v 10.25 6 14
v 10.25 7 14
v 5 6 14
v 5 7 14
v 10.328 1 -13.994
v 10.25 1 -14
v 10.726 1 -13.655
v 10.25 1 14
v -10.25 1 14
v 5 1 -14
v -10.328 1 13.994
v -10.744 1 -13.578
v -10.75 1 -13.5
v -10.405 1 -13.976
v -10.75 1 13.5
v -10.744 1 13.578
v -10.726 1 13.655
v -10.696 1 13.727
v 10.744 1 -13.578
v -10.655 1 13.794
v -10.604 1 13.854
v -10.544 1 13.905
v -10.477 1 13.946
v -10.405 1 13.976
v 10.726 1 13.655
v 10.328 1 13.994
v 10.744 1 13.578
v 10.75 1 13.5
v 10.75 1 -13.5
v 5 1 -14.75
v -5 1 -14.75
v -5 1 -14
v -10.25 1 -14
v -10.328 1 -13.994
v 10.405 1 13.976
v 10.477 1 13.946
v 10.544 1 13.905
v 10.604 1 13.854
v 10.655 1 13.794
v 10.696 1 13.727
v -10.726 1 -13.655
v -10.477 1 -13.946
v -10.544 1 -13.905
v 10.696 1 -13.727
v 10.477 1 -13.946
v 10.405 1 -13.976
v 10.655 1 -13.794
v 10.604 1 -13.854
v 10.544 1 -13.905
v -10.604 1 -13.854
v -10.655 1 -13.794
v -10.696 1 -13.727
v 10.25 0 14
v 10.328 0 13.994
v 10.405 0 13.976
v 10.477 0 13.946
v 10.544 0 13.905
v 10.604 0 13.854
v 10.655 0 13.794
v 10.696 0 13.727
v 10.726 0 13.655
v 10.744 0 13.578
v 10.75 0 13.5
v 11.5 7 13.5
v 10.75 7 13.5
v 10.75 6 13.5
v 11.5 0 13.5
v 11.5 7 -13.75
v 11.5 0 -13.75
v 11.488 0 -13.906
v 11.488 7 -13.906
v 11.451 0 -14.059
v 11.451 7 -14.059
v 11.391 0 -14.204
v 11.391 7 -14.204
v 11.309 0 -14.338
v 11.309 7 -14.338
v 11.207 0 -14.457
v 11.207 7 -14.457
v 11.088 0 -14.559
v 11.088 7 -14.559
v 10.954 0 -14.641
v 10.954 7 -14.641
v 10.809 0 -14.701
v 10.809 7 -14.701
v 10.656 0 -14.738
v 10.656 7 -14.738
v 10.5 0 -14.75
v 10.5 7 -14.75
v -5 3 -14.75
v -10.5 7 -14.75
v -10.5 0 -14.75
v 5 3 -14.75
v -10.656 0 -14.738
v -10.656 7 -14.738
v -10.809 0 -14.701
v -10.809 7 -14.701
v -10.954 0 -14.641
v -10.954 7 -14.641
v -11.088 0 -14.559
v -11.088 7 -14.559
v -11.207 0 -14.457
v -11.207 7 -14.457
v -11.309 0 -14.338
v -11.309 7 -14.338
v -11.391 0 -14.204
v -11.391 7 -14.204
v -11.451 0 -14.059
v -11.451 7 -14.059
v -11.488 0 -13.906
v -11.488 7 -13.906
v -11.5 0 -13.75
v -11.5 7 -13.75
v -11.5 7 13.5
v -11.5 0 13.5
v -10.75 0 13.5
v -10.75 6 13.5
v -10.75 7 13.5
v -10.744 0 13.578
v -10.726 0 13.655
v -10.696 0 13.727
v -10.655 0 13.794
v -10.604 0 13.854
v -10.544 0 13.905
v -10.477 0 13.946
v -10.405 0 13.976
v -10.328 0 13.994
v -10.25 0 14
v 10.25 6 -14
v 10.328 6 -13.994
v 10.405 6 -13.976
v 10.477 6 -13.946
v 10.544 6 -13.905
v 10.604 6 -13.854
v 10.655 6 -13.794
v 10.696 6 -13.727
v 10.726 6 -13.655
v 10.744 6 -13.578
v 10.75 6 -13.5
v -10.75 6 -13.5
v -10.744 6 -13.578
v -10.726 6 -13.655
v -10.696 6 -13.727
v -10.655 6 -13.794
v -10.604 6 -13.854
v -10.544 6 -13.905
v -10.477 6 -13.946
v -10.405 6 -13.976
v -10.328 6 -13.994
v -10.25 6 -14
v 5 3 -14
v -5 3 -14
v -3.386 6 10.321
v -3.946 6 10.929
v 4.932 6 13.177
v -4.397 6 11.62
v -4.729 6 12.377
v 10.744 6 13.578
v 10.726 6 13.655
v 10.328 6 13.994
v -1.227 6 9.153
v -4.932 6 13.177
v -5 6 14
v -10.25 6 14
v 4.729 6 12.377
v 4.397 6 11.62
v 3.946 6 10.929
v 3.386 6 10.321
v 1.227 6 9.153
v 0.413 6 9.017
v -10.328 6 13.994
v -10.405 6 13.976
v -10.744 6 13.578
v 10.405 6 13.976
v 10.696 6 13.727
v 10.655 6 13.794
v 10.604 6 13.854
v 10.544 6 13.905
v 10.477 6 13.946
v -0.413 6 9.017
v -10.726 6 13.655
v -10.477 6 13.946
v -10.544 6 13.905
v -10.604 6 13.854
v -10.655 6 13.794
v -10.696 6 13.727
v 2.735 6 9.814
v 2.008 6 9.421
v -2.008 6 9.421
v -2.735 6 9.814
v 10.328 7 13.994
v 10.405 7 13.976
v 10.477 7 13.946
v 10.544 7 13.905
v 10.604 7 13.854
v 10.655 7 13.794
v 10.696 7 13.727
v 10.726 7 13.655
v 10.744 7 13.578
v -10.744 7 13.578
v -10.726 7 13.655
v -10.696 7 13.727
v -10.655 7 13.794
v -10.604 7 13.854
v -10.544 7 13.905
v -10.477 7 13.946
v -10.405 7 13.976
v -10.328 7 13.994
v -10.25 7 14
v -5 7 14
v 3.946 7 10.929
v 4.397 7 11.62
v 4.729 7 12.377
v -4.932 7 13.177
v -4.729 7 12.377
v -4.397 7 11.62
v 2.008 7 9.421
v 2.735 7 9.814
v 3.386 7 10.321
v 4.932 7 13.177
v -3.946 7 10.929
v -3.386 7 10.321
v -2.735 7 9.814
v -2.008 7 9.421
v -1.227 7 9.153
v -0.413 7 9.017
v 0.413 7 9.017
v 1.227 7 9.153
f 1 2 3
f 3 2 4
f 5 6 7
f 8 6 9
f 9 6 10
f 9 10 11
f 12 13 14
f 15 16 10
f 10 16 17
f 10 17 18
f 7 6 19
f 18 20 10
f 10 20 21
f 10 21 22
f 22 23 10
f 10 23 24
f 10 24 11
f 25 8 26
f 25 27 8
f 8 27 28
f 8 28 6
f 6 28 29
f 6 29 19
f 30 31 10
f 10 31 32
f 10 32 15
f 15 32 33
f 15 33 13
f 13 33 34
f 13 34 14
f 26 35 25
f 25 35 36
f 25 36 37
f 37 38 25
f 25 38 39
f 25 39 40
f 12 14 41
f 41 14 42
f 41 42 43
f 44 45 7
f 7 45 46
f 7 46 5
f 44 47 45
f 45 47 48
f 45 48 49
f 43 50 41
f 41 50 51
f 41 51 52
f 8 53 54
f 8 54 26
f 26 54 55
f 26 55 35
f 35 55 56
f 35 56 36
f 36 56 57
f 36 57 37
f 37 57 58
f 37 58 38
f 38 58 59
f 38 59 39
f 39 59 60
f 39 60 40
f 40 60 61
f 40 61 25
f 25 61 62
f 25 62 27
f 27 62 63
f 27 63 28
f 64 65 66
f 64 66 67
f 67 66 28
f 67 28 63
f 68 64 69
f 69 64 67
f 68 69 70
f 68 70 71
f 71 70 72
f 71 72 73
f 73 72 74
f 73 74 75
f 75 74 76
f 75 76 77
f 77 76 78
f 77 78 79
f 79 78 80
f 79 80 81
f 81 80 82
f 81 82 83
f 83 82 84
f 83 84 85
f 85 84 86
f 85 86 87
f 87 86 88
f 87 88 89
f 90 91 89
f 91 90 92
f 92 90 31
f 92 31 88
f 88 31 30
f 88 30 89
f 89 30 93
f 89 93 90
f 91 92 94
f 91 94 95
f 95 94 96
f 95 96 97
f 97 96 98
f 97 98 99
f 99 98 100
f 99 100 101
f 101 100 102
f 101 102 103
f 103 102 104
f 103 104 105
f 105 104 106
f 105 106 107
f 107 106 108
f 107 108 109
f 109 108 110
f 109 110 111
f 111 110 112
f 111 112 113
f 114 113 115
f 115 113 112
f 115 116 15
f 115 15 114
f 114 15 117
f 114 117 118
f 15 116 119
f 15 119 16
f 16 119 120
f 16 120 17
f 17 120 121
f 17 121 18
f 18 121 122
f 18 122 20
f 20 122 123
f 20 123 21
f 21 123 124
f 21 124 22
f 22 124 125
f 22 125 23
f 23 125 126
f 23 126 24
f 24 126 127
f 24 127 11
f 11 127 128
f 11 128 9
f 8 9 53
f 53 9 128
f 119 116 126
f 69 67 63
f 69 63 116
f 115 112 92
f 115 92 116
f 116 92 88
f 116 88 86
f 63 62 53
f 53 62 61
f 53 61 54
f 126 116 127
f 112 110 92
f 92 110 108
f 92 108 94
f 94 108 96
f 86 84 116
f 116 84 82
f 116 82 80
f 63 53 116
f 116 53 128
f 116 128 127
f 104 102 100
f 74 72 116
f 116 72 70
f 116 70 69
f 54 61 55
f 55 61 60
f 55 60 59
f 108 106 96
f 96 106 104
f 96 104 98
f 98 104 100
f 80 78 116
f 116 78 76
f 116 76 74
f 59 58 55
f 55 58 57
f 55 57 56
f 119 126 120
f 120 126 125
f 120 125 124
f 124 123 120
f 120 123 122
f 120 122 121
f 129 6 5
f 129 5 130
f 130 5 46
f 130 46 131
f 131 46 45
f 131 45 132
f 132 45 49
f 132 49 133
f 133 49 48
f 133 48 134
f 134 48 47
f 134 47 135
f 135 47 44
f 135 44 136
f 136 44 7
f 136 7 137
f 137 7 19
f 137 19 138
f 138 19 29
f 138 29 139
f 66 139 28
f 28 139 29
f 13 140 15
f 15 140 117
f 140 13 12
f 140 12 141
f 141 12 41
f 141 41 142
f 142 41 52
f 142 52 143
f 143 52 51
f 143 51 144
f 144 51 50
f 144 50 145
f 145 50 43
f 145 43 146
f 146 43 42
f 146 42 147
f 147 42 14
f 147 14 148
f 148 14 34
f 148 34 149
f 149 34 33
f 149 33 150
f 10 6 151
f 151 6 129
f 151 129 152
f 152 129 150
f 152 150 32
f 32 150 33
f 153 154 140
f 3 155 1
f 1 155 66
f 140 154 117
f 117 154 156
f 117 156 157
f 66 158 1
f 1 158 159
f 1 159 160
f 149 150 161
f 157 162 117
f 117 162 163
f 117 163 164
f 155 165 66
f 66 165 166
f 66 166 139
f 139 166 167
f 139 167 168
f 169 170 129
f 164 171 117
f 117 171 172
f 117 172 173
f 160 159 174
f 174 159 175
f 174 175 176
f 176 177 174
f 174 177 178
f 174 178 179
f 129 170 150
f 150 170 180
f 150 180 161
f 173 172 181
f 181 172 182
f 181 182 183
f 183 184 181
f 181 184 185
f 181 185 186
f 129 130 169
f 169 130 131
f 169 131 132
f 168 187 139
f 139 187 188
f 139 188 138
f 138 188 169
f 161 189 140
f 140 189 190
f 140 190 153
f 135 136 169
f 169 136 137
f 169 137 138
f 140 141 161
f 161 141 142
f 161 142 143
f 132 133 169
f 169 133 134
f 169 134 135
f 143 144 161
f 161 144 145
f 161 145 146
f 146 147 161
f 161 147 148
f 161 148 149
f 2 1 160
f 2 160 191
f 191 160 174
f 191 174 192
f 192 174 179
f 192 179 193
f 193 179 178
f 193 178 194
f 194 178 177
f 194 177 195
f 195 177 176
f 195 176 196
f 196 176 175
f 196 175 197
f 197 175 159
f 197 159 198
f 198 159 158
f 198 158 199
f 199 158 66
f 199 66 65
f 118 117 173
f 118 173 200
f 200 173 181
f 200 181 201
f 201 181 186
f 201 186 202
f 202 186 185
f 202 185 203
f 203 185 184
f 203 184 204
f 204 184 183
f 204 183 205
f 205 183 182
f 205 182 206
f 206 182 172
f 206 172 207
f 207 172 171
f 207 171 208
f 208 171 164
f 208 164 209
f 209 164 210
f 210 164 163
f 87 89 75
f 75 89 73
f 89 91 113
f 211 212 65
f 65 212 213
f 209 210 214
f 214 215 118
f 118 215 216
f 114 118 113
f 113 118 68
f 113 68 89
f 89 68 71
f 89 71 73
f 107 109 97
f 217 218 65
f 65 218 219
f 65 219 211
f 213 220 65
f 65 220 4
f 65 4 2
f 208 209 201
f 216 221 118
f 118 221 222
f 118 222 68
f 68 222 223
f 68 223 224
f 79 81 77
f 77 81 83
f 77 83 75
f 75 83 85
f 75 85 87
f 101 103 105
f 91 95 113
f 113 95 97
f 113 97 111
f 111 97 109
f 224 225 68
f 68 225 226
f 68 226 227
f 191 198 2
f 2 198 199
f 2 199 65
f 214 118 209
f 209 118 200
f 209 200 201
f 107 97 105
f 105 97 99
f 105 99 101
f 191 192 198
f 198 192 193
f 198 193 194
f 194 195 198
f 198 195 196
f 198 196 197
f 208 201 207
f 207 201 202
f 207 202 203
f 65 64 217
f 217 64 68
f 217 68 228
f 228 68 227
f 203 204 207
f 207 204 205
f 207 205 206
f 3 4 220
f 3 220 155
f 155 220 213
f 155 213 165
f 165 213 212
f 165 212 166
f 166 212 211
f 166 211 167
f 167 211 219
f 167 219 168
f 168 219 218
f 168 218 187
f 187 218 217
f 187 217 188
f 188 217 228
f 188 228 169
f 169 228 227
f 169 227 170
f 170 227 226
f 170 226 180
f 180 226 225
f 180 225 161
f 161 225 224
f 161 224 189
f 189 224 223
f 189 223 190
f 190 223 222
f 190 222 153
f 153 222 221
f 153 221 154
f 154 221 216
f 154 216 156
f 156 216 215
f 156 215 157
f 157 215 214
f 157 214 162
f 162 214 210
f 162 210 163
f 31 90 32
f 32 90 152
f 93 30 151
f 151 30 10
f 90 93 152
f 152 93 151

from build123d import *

# Parameters (mm, degrees)
BOSS_EXTRUDE23_DEPTH = 1
BOSS_EXTRUDE27_DEPTH = 6
BOSS_EXTRUDE28_START = 6
BOSS_EXTRUDE28_DEPTH = 1
CUT_EXTRUDE9_DEPTH   = 1
SKETCH15_W           = 10
SKETCH15_H           = 2
CUT_EXTRUDE11_DEPTH  = 10


with BuildPart() as part:
    # Sketch10 → Boss-Extrude23 (new body)
    with BuildSketch(Plane(origin=(0, 0, 0), x_dir=(1, 0, 0), z_dir=(0, 1, 0))):
        with BuildLine():
            Line((-11.5, -13.5), (-10.75, -13.5))
            ThreePointArc((-10.75, -13.5), (-10.603553391, -13.853553391), (-10.25, -14))
            Line((-10.25, -14), (10.25, -14))
            ThreePointArc((10.25, -14), (10.603553391, -13.853553391), (10.75, -13.5))
            Line((10.75, -13.5), (11.5, -13.5))
            Line((11.5, -13.5), (11.5, 13.75))
            ThreePointArc((11.5, 13.75), (11.207106781, 14.457106781), (10.5, 14.75))
            Line((10.5, 14.75), (-10.5, 14.75))
            ThreePointArc((-10.5, 14.75), (-11.207106781, 14.457106781), (-11.5, 13.75))
            Line((-11.5, 13.75), (-11.5, -13.5))
        make_face()
    extrude(amount=BOSS_EXTRUDE23_DEPTH)

    # Sketch10<6> → Boss-Extrude27 (add)
    with BuildSketch(Plane(origin=(0, 0, 0), x_dir=(1, 0, 0), z_dir=(0, 1, 0))):
        with BuildLine():
            Line((-11.5, -13.5), (-10.75, -13.5))
            Line((-10.75, -13.5), (-10.75, 13.5))
            ThreePointArc((-10.75, 13.5), (-10.603553391, 13.853553391), (-10.25, 14))
            Line((-10.25, 14), (10.25, 14))
            ThreePointArc((10.25, 14), (10.603553391, 13.853553391), (10.75, 13.5))
            Line((10.75, 13.5), (10.75, -13.5))
            Line((10.75, -13.5), (11.5, -13.5))
            Line((11.5, -13.5), (11.5, 13.75))
            ThreePointArc((11.5, 13.75), (11.207106781, 14.457106781), (10.5, 14.75))
            Line((10.5, 14.75), (4.75, 14.75))
            Line((4.75, 14.75), (-4.75, 14.75))
            Line((-4.75, 14.75), (-10.5, 14.75))
            ThreePointArc((-10.5, 14.75), (-11.207106781, 14.457106781), (-11.5, 13.75))
            Line((-11.5, 13.75), (-11.5, -13.5))
        make_face()
    extrude(amount=BOSS_EXTRUDE27_DEPTH)

    # Sketch10<7> → Boss-Extrude28 (add)
    with BuildSketch(Plane(origin=(0, 0, 0), x_dir=(1, 0, 0), z_dir=(0, 1, 0)).offset(BOSS_EXTRUDE28_START)):
        with BuildLine():
            Line((-11.5, -13.5), (-10.75, -13.5))
            ThreePointArc((-10.75, -13.5), (-10.603553391, -13.853553391), (-10.25, -14))
            Line((-10.25, -14), (10.25, -14))
            ThreePointArc((10.25, -14), (10.603553391, -13.853553391), (10.75, -13.5))
            Line((10.75, -13.5), (11.5, -13.5))
            Line((11.5, -13.5), (11.5, 13.75))
            ThreePointArc((11.5, 13.75), (11.207106781, 14.457106781), (10.5, 14.75))
            Line((10.5, 14.75), (-10.5, 14.75))
            ThreePointArc((-10.5, 14.75), (-11.207106781, 14.457106781), (-11.5, 13.75))
            Line((-11.5, 13.75), (-11.5, -13.5))
        make_face()
    extrude(amount=BOSS_EXTRUDE28_DEPTH)

    # Sketch13 → Cut-Extrude9 (cut)
    with BuildSketch(Plane(origin=(0, 7, 0), x_dir=(1, 0, 0), z_dir=(0, 1, 0))):
        with BuildLine():
            Line((-5, -14), (5, -14))
            ThreePointArc((5, -14), (0, -9), (-5, -14))
        make_face()
    extrude(amount=-CUT_EXTRUDE9_DEPTH, mode=Mode.SUBTRACT)

    # Sketch15 → Cut-Extrude11 (cut)
    with BuildSketch(Plane(origin=(0, 0, -14.75), x_dir=(-1, 0, 0), z_dir=(0, 0, -1))):
        with Locations((0, 2)):
            Rectangle(SKETCH15_W, SKETCH15_H)
    extrude(amount=-CUT_EXTRUDE11_DEPTH, mode=Mode.SUBTRACT)


solid = part.part
